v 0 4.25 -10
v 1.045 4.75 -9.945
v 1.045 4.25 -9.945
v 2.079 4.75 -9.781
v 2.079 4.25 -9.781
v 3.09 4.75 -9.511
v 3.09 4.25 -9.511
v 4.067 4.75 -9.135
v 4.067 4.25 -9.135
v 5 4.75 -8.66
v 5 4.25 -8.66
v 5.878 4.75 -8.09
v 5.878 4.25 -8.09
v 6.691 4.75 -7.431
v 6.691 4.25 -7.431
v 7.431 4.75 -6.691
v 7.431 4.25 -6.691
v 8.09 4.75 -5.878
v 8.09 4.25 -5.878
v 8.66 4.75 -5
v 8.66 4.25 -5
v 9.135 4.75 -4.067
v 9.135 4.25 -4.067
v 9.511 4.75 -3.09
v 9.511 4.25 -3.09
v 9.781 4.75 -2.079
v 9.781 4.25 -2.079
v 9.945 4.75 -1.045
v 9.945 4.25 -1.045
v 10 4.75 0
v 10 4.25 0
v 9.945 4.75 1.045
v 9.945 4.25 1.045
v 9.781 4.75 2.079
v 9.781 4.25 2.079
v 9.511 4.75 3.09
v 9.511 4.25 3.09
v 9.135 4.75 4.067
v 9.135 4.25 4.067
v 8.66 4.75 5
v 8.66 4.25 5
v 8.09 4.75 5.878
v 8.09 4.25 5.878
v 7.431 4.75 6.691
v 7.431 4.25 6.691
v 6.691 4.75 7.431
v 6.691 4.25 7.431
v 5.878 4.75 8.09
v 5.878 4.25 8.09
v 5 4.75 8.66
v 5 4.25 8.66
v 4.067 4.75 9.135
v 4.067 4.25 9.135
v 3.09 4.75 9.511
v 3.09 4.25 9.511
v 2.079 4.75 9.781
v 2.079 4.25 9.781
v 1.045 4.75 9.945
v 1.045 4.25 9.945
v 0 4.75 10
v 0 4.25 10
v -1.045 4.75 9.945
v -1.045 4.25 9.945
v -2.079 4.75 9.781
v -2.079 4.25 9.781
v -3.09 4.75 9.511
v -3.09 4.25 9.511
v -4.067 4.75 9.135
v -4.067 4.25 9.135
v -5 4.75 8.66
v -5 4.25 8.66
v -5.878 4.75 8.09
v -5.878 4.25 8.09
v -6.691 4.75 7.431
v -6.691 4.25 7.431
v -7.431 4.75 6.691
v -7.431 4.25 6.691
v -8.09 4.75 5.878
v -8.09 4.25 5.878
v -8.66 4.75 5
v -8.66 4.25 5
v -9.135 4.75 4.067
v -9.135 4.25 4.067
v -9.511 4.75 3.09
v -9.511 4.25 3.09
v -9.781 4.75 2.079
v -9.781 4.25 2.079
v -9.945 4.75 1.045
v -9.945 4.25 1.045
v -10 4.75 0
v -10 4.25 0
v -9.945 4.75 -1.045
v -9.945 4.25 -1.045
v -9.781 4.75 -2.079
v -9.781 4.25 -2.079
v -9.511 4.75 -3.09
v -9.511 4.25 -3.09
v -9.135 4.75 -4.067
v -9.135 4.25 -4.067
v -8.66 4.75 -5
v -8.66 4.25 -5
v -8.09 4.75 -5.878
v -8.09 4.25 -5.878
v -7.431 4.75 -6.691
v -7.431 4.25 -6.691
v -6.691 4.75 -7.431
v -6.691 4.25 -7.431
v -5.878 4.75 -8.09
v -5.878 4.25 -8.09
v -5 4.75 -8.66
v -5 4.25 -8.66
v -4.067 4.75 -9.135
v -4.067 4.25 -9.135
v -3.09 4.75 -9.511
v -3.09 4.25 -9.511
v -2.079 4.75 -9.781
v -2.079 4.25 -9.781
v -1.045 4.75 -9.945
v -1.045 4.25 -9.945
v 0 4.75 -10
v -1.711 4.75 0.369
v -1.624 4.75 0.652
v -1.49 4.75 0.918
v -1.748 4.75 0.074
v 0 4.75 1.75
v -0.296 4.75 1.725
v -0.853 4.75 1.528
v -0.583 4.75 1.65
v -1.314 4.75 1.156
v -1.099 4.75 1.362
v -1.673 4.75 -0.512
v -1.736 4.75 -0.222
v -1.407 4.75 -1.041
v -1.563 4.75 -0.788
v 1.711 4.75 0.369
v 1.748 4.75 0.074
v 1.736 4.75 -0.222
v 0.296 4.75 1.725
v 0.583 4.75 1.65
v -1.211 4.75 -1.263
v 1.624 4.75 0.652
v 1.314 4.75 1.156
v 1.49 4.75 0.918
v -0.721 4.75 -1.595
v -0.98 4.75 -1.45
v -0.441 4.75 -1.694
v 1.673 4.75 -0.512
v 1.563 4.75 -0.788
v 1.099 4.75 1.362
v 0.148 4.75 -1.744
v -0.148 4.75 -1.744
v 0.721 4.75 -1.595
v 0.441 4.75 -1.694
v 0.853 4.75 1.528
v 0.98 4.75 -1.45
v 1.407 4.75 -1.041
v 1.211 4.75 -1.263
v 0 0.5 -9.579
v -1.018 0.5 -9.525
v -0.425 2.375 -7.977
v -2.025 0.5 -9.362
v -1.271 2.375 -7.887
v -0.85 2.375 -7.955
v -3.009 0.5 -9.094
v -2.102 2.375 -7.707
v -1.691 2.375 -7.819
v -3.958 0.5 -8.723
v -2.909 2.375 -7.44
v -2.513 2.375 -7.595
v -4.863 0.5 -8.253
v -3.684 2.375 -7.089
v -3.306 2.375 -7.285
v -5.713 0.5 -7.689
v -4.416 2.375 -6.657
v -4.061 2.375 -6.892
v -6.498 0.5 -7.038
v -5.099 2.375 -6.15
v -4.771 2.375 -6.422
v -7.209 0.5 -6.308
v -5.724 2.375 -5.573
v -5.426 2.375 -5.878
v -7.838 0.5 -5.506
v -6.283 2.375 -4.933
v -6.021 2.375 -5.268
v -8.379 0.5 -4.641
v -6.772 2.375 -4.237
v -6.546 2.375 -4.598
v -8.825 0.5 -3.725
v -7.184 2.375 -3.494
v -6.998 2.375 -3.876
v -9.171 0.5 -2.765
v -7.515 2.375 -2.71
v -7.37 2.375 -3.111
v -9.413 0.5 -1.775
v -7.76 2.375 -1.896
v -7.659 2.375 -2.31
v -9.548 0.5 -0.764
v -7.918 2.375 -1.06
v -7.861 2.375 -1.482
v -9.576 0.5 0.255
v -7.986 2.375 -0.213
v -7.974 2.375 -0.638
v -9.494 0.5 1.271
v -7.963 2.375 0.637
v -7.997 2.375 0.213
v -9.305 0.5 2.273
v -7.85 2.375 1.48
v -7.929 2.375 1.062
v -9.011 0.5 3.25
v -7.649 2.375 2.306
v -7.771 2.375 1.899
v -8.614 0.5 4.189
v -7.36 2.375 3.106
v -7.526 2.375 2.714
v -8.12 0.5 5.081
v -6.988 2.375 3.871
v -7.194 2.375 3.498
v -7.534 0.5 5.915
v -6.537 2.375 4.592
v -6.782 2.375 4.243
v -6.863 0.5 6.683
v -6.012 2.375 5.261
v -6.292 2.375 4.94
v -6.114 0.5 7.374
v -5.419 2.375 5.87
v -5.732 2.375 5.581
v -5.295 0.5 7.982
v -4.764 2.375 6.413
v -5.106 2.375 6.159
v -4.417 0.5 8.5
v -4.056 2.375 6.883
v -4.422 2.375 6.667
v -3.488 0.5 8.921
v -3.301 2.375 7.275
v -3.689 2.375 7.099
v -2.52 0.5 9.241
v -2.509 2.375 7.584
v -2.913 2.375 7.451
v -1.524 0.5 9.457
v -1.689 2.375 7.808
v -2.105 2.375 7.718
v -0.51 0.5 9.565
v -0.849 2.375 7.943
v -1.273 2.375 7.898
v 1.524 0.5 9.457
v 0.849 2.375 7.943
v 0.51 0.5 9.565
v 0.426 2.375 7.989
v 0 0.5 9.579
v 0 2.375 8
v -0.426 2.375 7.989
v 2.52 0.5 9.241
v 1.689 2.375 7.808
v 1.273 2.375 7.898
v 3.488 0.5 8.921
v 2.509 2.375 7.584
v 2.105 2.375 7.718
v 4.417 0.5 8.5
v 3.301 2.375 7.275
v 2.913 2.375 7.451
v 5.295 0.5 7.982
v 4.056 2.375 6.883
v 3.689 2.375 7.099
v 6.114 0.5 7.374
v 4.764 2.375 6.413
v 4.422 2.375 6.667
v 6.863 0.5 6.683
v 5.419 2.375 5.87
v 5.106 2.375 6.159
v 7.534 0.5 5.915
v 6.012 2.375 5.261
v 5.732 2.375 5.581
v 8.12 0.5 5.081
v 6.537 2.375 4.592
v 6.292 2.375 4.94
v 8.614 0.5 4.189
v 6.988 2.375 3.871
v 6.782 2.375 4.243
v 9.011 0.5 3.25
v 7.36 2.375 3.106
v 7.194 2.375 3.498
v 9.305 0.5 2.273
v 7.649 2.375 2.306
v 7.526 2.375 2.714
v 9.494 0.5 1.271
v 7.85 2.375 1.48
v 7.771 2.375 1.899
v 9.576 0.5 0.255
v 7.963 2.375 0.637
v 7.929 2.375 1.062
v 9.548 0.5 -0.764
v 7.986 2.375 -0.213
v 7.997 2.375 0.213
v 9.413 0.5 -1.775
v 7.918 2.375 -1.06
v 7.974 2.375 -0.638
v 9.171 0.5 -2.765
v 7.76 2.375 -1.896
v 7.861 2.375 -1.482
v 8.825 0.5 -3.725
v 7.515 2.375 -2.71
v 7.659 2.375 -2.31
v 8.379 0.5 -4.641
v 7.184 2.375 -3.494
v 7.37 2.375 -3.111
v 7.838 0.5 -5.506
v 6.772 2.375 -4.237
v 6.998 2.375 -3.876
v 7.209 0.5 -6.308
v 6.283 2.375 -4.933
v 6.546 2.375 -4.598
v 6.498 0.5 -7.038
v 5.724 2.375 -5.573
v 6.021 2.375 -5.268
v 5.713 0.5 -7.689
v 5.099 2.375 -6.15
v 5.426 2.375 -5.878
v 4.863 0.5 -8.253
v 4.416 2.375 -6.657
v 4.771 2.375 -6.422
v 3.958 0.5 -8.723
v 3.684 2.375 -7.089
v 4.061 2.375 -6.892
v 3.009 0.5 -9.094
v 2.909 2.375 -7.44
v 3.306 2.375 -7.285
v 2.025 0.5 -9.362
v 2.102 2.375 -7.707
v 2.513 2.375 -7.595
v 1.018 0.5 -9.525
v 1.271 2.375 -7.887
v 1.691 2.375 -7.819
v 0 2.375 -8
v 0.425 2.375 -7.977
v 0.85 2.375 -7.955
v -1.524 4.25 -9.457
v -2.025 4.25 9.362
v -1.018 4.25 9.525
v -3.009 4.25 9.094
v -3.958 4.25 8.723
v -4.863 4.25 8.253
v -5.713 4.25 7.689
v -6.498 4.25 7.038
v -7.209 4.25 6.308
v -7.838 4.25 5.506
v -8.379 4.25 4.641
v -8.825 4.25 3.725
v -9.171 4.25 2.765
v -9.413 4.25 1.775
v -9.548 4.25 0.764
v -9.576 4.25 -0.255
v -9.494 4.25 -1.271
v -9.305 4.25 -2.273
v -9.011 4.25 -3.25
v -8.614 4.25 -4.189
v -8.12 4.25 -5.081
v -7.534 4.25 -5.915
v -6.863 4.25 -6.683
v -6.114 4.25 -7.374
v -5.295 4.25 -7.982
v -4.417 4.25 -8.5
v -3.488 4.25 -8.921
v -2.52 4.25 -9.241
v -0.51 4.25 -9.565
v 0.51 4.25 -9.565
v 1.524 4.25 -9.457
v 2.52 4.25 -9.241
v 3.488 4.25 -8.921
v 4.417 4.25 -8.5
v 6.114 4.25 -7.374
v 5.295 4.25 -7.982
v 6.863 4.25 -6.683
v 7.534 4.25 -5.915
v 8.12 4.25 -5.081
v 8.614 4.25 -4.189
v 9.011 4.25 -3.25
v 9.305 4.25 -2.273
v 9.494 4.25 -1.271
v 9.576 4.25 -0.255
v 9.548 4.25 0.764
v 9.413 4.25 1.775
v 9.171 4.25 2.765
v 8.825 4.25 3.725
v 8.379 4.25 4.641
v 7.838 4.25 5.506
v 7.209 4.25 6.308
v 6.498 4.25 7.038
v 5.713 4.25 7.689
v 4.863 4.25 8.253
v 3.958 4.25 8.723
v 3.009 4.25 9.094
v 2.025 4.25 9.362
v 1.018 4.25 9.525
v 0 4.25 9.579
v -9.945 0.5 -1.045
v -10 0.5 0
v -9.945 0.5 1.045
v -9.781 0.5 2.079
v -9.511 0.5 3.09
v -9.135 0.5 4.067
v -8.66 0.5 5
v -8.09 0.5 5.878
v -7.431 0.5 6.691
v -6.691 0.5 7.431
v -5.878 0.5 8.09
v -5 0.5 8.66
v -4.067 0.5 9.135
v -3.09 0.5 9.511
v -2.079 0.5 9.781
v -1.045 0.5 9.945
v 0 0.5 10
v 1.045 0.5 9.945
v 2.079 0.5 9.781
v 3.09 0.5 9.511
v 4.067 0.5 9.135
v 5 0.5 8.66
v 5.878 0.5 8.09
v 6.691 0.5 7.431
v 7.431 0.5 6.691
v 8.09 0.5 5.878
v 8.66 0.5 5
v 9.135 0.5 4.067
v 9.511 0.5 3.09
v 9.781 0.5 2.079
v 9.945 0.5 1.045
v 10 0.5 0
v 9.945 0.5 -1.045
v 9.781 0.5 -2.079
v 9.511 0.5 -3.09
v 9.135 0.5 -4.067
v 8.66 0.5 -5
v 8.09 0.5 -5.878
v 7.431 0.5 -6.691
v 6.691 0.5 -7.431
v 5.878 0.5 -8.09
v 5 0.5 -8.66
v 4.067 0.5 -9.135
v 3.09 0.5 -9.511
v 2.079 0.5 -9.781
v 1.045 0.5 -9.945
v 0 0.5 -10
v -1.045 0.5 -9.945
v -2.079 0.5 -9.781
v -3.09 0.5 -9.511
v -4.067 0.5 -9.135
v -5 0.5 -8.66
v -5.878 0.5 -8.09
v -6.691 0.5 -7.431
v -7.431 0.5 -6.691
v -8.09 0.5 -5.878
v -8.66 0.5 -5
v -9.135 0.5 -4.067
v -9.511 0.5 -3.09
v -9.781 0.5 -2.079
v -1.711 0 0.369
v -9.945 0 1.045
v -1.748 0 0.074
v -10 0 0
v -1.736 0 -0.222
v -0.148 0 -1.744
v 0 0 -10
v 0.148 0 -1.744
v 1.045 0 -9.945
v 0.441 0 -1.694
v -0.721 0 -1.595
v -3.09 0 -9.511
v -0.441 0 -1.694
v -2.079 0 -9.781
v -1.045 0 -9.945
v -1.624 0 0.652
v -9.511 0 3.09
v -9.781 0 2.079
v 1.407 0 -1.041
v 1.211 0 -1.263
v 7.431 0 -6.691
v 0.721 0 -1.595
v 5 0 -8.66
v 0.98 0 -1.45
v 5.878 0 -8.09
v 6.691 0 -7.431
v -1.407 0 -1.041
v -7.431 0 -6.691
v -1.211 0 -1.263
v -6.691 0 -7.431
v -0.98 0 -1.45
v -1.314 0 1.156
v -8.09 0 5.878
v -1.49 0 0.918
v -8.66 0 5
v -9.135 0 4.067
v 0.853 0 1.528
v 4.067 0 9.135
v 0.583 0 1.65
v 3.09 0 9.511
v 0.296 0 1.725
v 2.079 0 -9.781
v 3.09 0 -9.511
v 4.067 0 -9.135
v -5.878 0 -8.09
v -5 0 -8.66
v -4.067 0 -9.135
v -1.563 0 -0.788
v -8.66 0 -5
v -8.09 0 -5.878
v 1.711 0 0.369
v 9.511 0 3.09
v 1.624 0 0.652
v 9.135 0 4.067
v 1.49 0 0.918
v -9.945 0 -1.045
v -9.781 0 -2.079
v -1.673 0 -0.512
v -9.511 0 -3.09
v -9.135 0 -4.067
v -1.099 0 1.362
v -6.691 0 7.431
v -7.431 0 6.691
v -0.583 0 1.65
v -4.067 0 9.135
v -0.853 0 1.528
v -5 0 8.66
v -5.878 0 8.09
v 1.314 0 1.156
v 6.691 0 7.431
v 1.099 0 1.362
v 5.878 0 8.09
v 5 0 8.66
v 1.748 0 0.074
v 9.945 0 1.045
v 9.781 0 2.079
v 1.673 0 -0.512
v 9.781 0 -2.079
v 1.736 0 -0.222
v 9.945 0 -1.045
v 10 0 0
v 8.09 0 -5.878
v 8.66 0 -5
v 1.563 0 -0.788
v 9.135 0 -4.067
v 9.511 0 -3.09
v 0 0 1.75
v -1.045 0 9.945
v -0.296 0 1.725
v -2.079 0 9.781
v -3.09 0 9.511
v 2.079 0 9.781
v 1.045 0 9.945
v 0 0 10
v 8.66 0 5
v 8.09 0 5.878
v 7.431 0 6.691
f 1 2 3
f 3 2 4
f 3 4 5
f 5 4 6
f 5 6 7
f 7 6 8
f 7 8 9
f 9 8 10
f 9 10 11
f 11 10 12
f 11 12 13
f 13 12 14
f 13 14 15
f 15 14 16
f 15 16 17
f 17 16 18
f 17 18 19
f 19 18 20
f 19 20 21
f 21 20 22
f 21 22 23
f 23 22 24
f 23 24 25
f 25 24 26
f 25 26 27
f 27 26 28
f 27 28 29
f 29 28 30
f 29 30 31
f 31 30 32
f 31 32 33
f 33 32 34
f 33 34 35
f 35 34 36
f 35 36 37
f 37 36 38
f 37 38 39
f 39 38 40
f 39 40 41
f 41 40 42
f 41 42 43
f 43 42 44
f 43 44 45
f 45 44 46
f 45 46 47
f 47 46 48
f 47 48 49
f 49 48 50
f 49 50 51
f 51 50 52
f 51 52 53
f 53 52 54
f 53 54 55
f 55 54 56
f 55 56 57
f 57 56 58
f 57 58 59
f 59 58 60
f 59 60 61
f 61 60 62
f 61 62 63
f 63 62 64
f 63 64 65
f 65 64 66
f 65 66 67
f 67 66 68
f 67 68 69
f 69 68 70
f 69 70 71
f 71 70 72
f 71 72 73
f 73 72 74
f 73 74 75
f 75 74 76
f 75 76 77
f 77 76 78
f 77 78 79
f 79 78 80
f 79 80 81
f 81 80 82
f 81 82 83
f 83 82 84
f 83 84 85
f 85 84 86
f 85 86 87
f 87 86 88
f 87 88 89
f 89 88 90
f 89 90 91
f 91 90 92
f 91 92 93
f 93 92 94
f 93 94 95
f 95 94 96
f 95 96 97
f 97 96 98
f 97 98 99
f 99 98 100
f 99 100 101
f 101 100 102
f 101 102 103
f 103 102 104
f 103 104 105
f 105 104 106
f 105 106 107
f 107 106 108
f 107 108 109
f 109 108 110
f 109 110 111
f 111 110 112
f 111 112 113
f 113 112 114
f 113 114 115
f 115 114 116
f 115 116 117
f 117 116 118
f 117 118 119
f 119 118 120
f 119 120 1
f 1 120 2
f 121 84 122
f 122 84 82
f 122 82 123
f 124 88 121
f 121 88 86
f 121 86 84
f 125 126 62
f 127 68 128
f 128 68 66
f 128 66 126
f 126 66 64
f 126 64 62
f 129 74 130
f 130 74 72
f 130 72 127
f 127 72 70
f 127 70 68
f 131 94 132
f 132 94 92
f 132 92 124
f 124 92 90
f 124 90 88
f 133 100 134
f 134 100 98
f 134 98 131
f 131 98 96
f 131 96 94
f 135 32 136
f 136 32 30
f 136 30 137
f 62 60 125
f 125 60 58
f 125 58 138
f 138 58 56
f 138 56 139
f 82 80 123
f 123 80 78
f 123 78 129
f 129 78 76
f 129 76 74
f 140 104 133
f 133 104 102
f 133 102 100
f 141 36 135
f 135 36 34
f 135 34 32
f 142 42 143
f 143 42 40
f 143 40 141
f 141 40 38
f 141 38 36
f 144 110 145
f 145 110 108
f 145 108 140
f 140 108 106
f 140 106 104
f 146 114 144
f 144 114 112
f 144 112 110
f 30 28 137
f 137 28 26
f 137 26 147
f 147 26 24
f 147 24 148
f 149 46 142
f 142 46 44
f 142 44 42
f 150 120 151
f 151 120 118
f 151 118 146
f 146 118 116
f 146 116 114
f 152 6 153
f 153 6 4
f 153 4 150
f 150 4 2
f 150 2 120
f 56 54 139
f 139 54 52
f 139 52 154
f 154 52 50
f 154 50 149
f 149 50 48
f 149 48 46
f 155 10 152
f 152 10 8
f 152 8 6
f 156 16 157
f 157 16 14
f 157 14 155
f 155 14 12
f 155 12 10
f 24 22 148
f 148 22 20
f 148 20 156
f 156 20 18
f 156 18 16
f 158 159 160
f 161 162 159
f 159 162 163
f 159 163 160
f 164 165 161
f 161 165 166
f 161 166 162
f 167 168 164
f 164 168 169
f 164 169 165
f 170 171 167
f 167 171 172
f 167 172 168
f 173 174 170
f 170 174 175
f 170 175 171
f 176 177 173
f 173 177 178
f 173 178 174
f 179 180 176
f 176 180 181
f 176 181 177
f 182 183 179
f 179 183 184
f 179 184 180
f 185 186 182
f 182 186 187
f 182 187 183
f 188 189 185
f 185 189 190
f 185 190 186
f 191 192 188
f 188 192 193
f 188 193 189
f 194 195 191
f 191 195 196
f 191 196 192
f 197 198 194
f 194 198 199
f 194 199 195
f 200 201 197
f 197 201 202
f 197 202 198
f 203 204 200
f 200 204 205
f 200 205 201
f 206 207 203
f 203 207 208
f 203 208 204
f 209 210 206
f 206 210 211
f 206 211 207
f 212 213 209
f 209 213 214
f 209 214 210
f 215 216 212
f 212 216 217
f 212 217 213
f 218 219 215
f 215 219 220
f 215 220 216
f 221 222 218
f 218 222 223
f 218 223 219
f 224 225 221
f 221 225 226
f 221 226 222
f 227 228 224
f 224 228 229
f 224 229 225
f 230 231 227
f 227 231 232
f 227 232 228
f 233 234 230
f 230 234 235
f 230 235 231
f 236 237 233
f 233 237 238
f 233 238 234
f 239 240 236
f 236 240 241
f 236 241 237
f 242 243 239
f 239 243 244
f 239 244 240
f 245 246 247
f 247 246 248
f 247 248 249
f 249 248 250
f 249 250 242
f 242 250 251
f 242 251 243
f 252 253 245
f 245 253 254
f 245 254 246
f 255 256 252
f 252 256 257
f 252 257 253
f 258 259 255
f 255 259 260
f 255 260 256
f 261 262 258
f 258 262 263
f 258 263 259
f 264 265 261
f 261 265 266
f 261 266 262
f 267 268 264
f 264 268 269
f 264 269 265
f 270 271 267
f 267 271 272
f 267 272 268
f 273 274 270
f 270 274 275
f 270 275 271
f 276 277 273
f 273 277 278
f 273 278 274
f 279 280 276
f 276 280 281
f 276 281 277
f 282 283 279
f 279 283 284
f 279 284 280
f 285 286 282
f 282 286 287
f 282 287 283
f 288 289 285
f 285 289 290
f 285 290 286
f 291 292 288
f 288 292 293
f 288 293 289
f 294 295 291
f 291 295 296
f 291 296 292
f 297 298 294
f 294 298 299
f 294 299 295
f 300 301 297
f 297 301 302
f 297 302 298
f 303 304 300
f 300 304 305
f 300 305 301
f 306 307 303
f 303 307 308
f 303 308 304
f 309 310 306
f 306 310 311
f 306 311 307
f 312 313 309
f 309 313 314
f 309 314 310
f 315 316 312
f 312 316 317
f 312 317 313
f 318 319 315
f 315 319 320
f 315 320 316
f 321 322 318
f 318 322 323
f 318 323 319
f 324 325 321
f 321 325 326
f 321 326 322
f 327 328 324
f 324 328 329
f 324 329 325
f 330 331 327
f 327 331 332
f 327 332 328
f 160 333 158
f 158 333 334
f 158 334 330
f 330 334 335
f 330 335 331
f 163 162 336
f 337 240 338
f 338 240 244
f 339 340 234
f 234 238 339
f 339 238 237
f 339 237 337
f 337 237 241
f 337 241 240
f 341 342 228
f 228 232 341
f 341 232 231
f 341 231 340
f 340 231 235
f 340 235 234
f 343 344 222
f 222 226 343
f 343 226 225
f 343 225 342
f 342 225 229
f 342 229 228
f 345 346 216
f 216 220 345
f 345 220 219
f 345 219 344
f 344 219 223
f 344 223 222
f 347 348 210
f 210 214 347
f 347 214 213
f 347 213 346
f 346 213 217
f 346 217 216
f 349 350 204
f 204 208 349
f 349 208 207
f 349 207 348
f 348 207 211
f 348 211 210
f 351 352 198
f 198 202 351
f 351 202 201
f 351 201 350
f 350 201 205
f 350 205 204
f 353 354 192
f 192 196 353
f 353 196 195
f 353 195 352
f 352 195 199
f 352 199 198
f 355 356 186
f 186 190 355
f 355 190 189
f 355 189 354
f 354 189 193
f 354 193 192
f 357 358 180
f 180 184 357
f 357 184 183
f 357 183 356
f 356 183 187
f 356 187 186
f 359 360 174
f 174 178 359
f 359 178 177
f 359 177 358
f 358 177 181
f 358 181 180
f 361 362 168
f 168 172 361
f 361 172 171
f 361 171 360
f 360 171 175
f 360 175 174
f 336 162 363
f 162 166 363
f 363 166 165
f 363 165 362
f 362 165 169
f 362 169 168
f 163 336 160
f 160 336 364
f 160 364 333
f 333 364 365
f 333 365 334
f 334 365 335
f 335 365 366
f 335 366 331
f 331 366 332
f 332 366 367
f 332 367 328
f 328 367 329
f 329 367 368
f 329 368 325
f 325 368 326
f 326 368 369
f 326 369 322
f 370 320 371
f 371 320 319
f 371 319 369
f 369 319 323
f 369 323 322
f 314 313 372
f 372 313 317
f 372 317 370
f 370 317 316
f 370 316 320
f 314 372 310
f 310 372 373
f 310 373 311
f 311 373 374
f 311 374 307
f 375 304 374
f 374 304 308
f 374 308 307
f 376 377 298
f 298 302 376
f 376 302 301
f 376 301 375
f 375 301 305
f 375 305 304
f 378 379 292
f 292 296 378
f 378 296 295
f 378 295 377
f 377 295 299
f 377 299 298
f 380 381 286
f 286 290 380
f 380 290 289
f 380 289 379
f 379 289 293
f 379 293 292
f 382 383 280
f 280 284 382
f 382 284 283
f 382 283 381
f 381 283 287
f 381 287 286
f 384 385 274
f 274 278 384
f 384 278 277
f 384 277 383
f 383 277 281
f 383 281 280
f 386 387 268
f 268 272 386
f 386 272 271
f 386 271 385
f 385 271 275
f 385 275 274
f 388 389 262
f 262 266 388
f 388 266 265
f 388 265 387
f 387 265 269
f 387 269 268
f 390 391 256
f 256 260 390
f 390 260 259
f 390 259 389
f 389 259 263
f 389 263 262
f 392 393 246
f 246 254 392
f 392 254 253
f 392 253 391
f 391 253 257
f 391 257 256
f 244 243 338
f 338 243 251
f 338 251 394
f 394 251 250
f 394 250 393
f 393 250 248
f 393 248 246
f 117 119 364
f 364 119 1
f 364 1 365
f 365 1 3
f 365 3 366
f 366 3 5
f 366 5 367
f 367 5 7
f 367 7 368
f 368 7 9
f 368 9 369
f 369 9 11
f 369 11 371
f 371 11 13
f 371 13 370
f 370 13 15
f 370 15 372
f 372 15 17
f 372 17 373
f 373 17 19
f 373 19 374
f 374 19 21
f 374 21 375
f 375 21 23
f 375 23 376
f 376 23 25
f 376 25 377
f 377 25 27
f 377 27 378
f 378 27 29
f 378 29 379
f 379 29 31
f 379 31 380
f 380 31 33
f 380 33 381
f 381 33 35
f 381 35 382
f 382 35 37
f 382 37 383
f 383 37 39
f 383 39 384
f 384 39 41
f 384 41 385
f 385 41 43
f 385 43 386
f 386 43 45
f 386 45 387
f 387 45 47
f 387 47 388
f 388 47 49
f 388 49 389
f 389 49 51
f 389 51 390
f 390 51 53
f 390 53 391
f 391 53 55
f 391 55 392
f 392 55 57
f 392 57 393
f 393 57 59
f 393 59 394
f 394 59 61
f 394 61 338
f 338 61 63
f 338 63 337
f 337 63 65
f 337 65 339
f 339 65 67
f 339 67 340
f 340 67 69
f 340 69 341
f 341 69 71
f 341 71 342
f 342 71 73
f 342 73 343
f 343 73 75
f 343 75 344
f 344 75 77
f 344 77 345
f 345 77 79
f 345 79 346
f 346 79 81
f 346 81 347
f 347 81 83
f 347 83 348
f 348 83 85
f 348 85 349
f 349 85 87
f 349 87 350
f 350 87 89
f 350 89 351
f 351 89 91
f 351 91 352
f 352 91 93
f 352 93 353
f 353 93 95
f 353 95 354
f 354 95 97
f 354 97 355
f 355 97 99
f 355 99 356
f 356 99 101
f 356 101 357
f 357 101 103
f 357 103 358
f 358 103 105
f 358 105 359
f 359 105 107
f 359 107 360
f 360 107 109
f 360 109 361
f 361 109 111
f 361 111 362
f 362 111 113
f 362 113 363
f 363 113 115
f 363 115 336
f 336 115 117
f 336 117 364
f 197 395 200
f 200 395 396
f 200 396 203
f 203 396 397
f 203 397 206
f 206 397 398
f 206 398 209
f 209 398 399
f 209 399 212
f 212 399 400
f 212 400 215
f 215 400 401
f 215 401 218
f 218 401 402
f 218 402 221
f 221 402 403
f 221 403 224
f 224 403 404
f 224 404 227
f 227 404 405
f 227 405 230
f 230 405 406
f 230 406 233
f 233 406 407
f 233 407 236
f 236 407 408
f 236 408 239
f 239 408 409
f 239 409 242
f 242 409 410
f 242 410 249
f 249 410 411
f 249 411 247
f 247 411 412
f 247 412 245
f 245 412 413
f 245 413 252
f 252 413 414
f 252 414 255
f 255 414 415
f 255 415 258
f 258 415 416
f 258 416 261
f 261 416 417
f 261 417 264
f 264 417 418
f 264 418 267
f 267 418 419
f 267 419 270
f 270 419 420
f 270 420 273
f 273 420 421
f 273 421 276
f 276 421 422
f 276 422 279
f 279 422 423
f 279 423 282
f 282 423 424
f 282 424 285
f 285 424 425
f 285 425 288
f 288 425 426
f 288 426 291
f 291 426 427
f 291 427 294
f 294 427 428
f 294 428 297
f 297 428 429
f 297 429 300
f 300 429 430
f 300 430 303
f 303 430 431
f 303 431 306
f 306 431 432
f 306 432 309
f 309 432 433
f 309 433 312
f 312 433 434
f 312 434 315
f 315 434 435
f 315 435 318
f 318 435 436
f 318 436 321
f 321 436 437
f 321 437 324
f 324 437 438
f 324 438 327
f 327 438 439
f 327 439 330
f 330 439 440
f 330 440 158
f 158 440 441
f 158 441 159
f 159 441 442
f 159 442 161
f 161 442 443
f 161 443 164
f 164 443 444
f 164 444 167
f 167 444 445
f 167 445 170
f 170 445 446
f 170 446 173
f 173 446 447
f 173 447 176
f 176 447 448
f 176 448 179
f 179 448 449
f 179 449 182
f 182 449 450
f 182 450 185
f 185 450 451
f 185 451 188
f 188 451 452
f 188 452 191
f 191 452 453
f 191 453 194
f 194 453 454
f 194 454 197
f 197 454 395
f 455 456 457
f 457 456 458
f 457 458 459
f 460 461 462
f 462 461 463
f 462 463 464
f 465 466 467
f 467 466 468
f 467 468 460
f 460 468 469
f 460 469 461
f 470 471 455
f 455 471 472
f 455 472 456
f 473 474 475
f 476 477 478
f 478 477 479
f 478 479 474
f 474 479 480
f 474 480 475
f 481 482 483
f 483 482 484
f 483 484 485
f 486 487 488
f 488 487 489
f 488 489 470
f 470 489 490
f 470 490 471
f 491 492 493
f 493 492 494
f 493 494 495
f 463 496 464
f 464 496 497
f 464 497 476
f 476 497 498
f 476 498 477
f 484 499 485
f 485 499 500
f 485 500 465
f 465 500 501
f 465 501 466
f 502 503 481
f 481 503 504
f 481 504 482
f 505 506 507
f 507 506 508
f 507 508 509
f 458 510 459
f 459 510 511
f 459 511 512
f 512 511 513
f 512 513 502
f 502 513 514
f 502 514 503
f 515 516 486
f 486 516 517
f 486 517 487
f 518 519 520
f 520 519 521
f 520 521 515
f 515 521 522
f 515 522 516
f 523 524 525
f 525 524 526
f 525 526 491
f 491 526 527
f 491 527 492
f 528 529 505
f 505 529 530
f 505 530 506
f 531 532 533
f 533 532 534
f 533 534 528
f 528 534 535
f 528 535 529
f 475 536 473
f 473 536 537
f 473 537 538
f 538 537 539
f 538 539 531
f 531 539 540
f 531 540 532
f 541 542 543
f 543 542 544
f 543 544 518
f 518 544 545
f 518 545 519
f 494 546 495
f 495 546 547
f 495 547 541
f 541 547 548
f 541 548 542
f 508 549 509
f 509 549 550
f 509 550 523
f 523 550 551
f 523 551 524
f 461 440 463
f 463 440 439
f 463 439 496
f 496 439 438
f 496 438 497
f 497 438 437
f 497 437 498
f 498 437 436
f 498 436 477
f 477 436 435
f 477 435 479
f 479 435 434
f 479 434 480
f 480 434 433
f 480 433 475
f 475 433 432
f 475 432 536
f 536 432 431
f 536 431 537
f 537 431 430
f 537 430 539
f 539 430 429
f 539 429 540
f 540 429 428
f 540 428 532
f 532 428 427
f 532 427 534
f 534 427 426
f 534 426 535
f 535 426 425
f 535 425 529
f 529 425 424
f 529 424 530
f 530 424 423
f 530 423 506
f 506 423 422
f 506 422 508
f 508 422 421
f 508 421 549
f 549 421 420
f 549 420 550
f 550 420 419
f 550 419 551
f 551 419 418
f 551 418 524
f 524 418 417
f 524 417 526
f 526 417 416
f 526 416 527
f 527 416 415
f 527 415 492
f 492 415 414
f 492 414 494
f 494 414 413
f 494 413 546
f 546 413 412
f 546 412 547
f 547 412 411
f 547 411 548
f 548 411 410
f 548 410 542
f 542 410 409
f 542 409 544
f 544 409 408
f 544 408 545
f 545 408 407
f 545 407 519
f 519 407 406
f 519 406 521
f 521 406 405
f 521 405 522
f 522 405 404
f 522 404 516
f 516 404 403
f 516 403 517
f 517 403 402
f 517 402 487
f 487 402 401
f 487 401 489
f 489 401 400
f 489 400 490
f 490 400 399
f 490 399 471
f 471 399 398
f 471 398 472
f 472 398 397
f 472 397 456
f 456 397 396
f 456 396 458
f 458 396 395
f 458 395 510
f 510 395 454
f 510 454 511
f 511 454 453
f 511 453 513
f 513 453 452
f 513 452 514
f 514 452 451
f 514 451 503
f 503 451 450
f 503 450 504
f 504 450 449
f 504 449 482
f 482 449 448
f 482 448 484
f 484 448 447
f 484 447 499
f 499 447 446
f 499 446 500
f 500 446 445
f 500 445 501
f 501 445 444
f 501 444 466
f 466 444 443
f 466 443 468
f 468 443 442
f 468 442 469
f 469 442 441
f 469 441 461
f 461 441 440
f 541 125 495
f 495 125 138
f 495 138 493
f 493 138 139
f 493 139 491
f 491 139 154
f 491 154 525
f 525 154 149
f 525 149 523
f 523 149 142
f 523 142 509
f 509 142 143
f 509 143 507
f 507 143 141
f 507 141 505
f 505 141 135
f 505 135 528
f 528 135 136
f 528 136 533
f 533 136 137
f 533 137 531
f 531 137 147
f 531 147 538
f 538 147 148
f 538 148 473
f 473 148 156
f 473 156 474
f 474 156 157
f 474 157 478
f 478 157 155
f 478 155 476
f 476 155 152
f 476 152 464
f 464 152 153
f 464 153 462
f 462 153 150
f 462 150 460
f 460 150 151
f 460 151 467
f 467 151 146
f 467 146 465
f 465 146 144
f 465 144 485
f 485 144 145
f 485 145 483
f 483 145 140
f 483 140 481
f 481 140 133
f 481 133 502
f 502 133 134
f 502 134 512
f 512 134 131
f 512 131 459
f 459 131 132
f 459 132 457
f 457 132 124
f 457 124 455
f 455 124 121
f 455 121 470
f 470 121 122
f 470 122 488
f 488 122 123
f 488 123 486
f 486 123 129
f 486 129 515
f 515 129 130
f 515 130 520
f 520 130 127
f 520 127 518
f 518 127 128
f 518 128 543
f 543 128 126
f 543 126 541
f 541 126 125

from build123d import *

# Parameters (mm, degrees)
SKETCH1_R           = 10
BOSS_EXTRUDE1_DEPTH = 4.75
SKETCH3_R           = 1.75
CUT_EXTRUDE1_DEPTH  = 4.75


with BuildPart() as part:
    # Sketch1 → Boss-Extrude1 (new body)
    with BuildSketch(Plane(origin=(0, 0, 0), x_dir=(1, 0, 0), z_dir=(0, 1, 0))):
        with Locations(Location((0, 0, 0), (0, 0, 270))):
            Circle(SKETCH1_R)
    extrude(amount=BOSS_EXTRUDE1_DEPTH)

    # Sketch2 → Cut-Revolve1 (revolve, cut)
    with BuildSketch(Plane(origin=(0, 0, 0), x_dir=(0, 0, -1), z_dir=(1, 0, 0)), mode=Mode.PRIVATE) as cut_revolve1_sk:
        Polygon((9.578947368, 4.25), (8, 2.375), (9.578947368, 0.5), (10, 0.5), (10, 4.25), align=None)
    revolve(cut_revolve1_sk.sketch.rotate(Axis((0, 4.75, 0), (0, -1, 0)), 180), axis=Axis((0, 4.75, 0), (0, -1, 0)), mode=Mode.SUBTRACT)

    # Sketch3 → Cut-Extrude1 (cut)
    with BuildSketch(Plane(origin=(0, 4.75, 0), x_dir=(1, 0, 0), z_dir=(0, 1, 0))):
        with Locations(Location((0, 0, 0), (0, 0, 270))):
            Circle(SKETCH3_R)
    extrude(amount=-CUT_EXTRUDE1_DEPTH, mode=Mode.SUBTRACT)


solid = part.part
